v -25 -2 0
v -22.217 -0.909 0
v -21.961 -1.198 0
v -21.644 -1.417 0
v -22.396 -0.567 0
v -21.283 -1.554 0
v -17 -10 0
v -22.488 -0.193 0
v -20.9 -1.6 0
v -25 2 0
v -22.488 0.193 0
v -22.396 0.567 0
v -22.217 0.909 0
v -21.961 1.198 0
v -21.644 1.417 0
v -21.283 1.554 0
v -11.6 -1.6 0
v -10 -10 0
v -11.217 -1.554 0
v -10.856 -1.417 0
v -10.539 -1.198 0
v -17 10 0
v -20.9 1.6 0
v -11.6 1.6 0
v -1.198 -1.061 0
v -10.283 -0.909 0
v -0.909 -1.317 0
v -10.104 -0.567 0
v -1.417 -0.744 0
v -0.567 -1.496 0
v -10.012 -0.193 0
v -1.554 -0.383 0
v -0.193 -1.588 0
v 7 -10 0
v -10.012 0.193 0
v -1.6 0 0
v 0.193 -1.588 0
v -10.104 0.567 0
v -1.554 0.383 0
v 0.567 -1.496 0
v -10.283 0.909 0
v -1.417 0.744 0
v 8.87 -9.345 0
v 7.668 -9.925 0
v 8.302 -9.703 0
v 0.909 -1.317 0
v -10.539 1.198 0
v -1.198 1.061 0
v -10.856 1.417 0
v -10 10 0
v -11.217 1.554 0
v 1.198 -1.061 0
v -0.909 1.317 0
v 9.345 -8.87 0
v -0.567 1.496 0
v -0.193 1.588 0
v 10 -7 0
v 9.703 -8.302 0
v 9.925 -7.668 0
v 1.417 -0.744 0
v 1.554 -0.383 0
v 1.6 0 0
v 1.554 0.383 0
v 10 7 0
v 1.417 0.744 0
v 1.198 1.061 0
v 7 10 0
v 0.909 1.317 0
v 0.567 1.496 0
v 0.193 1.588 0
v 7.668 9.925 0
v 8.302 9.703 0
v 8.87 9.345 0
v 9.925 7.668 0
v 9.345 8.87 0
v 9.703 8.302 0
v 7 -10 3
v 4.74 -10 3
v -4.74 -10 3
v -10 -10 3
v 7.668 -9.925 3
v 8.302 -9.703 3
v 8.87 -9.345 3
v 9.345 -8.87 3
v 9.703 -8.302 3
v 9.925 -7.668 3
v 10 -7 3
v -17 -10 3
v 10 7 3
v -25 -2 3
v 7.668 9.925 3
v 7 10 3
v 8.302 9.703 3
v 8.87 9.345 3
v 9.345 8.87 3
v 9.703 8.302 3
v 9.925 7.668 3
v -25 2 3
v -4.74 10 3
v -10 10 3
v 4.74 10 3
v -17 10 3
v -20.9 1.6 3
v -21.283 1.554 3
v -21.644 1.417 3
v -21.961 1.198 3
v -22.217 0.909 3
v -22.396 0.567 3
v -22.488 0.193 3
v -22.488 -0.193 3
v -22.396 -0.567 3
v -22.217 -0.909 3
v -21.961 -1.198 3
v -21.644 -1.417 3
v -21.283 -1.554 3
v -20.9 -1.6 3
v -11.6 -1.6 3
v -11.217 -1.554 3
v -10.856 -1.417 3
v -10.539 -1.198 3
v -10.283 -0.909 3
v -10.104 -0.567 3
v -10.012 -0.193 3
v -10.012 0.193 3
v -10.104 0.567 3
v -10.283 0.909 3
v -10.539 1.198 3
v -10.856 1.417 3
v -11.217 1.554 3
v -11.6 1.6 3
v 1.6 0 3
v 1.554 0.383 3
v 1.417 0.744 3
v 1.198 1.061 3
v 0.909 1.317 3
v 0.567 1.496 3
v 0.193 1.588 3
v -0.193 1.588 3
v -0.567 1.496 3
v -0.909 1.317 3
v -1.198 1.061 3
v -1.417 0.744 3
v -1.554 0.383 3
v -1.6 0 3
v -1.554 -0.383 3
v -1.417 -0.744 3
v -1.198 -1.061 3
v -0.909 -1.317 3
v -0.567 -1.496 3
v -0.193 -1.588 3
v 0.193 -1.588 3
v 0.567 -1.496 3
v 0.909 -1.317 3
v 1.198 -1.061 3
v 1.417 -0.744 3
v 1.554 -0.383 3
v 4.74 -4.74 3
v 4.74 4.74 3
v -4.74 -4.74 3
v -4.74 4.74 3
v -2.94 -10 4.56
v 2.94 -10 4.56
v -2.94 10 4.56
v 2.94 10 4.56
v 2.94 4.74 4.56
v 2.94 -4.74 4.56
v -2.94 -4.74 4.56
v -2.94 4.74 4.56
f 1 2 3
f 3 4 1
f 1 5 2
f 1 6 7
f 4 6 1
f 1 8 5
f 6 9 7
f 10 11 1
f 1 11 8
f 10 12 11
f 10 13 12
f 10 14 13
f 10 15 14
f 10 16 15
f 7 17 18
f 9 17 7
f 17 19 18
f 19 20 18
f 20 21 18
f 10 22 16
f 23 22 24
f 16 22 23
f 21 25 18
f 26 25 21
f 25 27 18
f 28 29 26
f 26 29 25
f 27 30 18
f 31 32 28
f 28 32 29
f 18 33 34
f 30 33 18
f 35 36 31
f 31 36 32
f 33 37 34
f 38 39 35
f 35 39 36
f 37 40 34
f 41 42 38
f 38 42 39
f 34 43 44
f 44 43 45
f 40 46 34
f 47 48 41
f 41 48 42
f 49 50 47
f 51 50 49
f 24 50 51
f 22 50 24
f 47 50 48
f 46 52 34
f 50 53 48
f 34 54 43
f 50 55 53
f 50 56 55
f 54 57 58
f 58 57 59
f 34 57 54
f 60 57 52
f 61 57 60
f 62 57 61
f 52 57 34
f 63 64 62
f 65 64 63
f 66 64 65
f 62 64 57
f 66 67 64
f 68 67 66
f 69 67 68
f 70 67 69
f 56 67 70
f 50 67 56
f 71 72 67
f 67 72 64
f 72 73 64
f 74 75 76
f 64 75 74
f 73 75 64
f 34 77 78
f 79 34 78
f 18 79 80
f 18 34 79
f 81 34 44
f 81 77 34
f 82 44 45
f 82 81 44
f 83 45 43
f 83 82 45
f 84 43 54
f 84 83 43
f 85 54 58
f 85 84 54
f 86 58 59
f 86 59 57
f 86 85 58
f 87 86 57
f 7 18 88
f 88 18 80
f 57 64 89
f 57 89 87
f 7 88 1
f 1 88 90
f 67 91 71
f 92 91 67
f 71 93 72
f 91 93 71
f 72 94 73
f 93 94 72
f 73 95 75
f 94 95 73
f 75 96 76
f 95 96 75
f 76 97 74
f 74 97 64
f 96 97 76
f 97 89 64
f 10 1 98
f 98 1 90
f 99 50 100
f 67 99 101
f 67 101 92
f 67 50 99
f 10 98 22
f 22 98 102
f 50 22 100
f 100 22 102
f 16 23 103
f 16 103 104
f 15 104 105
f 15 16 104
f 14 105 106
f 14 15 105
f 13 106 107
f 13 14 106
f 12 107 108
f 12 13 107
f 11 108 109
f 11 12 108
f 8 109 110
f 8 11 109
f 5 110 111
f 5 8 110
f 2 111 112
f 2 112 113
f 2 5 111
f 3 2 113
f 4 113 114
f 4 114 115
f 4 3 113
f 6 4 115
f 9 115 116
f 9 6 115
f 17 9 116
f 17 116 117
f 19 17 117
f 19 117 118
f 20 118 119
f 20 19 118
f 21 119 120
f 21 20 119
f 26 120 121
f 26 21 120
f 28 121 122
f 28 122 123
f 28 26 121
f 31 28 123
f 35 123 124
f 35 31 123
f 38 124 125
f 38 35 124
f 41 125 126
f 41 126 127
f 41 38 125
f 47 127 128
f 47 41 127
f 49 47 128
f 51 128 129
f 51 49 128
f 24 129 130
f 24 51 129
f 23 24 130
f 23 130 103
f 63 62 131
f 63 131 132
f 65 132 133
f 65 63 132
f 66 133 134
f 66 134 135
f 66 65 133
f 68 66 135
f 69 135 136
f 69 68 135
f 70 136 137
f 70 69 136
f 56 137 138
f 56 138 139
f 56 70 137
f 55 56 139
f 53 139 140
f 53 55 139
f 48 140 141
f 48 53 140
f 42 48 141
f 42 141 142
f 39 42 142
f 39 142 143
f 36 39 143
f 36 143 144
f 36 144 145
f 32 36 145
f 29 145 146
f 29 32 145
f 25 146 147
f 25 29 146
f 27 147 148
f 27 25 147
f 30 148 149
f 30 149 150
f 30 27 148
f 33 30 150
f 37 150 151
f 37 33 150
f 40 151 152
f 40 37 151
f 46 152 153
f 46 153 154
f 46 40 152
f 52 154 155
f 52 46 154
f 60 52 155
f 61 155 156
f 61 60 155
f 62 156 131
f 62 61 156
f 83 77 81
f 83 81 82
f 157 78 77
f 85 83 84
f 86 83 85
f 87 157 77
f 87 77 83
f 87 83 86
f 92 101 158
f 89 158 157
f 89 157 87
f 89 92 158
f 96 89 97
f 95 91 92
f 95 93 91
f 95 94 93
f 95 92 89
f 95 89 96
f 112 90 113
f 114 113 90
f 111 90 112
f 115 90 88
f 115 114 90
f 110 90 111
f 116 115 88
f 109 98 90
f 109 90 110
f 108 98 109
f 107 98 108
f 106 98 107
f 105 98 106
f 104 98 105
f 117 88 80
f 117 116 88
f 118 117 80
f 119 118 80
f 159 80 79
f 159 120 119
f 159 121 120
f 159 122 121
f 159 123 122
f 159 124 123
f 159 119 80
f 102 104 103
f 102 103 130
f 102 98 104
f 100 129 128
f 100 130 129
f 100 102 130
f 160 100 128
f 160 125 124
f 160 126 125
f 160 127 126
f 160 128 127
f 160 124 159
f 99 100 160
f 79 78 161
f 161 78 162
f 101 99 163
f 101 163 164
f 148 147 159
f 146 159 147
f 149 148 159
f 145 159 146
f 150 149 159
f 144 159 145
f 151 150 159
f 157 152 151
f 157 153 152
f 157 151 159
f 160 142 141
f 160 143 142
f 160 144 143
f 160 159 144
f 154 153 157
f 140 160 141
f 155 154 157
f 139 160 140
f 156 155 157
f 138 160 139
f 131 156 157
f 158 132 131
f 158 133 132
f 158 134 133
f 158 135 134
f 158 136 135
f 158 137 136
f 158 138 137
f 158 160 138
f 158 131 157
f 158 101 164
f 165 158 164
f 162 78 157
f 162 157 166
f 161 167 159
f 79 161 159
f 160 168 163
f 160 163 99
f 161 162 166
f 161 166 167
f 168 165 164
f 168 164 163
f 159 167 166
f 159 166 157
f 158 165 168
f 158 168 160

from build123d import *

# Parameters (mm, degrees)
SKETCH_R     = 1.6
PAD_DEPTH    = 3
PAD001_DEPTH = 20
SKETCH002_W  = 9.48
SKETCH002_H  = 9.48
POCKET_DEPTH = 1.56
CHAMFER_SIZE = 8
FILLET_R     = 3


with BuildPart() as part:
    # Sketch → Pad (new body)
    with BuildSketch(Plane.XY):
        Polygon((-10, 10), (10, 10), (10, -10), (-10, -10), (-25, -10), (-25, 10), align=None)
        Circle(SKETCH_R, mode=Mode.SUBTRACT)
        with BuildLine():
            ThreePointArc((-20.9, 1.6), (-22.5, 0), (-20.9, -1.6))
            Line((-20.9, -1.6), (-11.6, -1.6))
            ThreePointArc((-11.6, -1.6), (-10, 0), (-11.6, 1.6))
            Line((-11.6, 1.6), (-20.9, 1.6))
        make_face(mode=Mode.SUBTRACT)
    extrude(amount=PAD_DEPTH)

    # Sketch001 (on Face3 of Pad) → Pad001 (join)
    with BuildSketch(Plane.XZ.offset(10)):
        Polygon((-4.74, 3), (4.74, 3), (2.94, 4.56), (-2.94, 4.56), align=None)
    extrude(amount=-PAD001_DEPTH)

    # Sketch002 (on Face18 of Pad001) → Pocket (cut)
    with BuildSketch(Plane.XY.offset(4.56)):
        Rectangle(SKETCH002_W, SKETCH002_H)
    extrude(amount=-POCKET_DEPTH, mode=Mode.SUBTRACT)

    # Chamfer
    chamfer_edges = [part.edges().sort_by_distance(p)[0] for p in [
        (-25, 10, 1.5),
        (-25, -10, 1.5),
    ]]
    chamfer(chamfer_edges, length=CHAMFER_SIZE)

    # Fillet
    fillet_edges = [part.edges().sort_by_distance(p)[0] for p in [
        (10, 10, 1.5),
        (10, -10, 1.5),
    ]]
    fillet(fillet_edges, radius=FILLET_R)


solid = part.part
